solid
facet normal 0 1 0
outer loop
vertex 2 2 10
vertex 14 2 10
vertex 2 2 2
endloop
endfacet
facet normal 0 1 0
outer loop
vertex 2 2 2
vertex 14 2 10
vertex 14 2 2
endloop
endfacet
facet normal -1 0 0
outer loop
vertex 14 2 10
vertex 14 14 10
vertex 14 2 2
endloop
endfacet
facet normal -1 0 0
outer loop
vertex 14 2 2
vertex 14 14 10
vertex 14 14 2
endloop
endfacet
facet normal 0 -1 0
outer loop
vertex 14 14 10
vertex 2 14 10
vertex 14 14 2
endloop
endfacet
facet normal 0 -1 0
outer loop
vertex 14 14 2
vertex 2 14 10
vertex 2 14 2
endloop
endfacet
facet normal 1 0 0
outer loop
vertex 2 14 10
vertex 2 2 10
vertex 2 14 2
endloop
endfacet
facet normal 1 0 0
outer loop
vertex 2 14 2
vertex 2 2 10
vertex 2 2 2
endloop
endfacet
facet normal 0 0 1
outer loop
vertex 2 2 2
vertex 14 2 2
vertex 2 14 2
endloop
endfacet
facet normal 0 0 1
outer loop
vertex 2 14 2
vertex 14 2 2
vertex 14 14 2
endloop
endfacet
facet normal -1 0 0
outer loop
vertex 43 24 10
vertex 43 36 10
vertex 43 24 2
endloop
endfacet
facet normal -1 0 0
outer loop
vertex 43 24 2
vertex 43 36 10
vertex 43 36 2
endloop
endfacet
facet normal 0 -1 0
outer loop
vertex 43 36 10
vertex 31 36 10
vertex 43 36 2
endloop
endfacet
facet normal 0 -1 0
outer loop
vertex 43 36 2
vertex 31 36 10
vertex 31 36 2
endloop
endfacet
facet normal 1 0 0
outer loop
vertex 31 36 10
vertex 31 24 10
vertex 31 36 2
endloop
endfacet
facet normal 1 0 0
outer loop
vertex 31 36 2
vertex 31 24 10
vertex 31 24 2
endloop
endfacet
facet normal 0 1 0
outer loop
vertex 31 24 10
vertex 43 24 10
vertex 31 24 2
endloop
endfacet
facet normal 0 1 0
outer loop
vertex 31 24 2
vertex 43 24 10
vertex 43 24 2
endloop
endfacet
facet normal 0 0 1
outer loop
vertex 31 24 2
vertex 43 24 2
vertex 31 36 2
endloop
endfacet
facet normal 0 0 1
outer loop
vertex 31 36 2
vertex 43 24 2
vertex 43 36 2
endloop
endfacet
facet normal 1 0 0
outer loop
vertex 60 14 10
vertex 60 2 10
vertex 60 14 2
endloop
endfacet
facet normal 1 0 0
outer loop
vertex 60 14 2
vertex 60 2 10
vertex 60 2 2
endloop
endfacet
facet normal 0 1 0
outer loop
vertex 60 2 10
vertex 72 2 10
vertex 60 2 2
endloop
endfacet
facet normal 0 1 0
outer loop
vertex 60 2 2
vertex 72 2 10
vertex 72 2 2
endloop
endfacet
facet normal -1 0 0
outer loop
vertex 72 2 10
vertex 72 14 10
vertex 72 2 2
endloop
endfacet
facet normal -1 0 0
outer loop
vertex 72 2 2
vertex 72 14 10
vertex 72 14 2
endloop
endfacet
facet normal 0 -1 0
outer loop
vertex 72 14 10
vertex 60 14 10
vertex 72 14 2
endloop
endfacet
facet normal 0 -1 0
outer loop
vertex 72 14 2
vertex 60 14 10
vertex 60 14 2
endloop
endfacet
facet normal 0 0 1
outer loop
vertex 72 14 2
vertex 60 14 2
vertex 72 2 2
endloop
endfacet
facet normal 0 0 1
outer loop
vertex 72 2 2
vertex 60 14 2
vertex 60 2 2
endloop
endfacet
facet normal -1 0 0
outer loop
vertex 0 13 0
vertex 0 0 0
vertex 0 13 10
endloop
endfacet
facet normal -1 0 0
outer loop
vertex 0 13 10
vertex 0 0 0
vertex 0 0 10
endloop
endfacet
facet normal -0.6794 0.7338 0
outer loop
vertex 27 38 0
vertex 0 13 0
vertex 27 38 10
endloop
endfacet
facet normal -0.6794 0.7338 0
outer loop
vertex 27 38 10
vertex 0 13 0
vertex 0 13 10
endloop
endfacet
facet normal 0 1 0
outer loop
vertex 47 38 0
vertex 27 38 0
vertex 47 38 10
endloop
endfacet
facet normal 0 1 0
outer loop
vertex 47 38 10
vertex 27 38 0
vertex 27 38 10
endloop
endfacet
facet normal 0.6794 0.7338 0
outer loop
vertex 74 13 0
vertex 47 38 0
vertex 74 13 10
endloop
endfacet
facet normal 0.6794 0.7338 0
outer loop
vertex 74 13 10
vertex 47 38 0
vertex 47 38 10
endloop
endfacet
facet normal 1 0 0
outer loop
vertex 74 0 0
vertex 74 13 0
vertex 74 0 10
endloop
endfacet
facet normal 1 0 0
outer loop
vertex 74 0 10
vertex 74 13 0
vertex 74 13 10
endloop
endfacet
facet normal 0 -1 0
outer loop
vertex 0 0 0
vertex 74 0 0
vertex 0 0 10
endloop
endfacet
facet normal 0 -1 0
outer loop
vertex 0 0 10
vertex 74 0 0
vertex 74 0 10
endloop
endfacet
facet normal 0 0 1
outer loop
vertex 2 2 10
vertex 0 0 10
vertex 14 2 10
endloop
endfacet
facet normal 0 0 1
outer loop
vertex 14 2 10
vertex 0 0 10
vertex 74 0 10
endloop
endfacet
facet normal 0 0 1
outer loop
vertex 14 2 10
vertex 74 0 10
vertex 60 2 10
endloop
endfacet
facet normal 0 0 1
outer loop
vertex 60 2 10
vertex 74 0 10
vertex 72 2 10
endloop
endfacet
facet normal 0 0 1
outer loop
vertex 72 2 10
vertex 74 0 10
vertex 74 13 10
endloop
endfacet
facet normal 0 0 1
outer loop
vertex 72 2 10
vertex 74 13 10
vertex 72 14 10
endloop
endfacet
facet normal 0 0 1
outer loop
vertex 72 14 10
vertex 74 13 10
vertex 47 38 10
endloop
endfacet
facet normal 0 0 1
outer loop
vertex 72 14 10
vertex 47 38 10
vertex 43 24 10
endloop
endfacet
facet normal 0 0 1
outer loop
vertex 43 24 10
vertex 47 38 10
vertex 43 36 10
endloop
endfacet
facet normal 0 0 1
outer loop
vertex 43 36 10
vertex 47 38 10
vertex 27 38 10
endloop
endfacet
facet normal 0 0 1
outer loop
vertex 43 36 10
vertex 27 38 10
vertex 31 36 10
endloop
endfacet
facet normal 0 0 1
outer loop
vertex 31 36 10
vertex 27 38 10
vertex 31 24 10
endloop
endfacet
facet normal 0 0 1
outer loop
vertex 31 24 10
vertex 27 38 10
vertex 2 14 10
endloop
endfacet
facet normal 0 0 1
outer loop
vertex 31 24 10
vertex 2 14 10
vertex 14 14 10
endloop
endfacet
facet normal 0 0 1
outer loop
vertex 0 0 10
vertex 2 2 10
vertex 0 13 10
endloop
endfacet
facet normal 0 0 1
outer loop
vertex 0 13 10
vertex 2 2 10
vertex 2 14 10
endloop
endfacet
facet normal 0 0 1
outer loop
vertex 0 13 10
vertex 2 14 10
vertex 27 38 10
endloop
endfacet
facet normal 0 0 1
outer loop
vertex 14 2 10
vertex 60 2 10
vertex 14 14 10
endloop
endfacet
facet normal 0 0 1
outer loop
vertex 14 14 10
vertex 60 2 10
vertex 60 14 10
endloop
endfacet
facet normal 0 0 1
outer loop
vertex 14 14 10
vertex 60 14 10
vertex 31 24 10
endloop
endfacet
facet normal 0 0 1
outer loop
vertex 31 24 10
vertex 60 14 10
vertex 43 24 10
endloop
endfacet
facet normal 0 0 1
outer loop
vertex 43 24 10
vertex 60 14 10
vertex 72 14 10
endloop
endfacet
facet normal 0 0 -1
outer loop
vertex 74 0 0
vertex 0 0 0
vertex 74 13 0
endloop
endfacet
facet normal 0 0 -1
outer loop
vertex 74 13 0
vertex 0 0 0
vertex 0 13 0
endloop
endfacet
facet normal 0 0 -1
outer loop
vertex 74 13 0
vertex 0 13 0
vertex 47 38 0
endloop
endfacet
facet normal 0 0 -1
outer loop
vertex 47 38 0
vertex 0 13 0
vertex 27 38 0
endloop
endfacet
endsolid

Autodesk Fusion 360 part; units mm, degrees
sketch "Sketch1" plane through (0, 0, 0) normal (0, 0, 1) x (1, 0, 0)
  line L0 (0, 0) -> (74, 0)
  line L1 (0, 0) -> (0, 13)
  line L2 (37, 0) -> (37, 38) construction
  line L3 (37, 38) -> (27, 38)
  line L4 (0, 13) -> (27, 38)
  line L5 (37, 38) -> (47, 38)
  line L6 (74, 0) -> (74, 13)
  line L7 (74, 13) -> (47, 38)
  dimension "d1" = 74
  dimension "d2" = 13
  dimension "d3" = 38
  dimension "d4" = 10
  dimension "d5" = 10
  dimension "d6" = 13
extrude "Extrude1" add sketch "Sketch1" along normal blind 10
sketch "Sketch2" plane through (0, 0, 10) normal (0, 0, 1) x (-1, 0, 0)
  line L0 (0, 0) -> (-74, 0)
  line L1 (-74, 0) -> (-74, -13)
  line L2 (-74, -13) -> (-47, -38)
  line L3 (-47, -38) -> (-27, -38)
  line L4 (-27, -38) -> (0, -13)
  line L5 (0, -13) -> (0, 0)
  line L6 (-37, -36) -> (-31, -36) construction
  line L7 (0, 0) -> (-2, 0) construction
  line L8 (-2, 0) -> (-2, -2) construction
  line L9 (-74, 0) -> (-72, 0) construction
  line L10 (-72, 0) -> (-72, -2) construction
  line L11 (-31, -36) -> (-43, -36)
  line L12 (-43, -36) -> (-43, -24)
  line L13 (-43, -24) -> (-31, -24)
  line L14 (-31, -24) -> (-31, -36)
  line L15 (-2, -2) -> (-14, -2)
  line L16 (-14, -2) -> (-14, -14)
  line L17 (-14, -14) -> (-2, -14)
  line L18 (-2, -14) -> (-2, -2)
  line L19 (-72, -2) -> (-60, -2)
  line L20 (-60, -2) -> (-60, -14)
  line L21 (-60, -14) -> (-72, -14)
  line L22 (-72, -14) -> (-72, -2)
  dimension "d10" = 6
  dimension "d11" = 2
  dimension "d12" = 2
  dimension "d13" = 2
  dimension "d14" = 2
  dimension "d15" = 12
  dimension "d16" = 12
  dimension "d17" = 12
  dimension "d18" = 12
  dimension "d19" = 12
  dimension "d20" = 12
extrude "Extrude2" cut sketch "Sketch2" against normal blind 8 contours L11 L12 L13 L14 | L15 L16 L17 L18 | L19 L20 L21 L22
